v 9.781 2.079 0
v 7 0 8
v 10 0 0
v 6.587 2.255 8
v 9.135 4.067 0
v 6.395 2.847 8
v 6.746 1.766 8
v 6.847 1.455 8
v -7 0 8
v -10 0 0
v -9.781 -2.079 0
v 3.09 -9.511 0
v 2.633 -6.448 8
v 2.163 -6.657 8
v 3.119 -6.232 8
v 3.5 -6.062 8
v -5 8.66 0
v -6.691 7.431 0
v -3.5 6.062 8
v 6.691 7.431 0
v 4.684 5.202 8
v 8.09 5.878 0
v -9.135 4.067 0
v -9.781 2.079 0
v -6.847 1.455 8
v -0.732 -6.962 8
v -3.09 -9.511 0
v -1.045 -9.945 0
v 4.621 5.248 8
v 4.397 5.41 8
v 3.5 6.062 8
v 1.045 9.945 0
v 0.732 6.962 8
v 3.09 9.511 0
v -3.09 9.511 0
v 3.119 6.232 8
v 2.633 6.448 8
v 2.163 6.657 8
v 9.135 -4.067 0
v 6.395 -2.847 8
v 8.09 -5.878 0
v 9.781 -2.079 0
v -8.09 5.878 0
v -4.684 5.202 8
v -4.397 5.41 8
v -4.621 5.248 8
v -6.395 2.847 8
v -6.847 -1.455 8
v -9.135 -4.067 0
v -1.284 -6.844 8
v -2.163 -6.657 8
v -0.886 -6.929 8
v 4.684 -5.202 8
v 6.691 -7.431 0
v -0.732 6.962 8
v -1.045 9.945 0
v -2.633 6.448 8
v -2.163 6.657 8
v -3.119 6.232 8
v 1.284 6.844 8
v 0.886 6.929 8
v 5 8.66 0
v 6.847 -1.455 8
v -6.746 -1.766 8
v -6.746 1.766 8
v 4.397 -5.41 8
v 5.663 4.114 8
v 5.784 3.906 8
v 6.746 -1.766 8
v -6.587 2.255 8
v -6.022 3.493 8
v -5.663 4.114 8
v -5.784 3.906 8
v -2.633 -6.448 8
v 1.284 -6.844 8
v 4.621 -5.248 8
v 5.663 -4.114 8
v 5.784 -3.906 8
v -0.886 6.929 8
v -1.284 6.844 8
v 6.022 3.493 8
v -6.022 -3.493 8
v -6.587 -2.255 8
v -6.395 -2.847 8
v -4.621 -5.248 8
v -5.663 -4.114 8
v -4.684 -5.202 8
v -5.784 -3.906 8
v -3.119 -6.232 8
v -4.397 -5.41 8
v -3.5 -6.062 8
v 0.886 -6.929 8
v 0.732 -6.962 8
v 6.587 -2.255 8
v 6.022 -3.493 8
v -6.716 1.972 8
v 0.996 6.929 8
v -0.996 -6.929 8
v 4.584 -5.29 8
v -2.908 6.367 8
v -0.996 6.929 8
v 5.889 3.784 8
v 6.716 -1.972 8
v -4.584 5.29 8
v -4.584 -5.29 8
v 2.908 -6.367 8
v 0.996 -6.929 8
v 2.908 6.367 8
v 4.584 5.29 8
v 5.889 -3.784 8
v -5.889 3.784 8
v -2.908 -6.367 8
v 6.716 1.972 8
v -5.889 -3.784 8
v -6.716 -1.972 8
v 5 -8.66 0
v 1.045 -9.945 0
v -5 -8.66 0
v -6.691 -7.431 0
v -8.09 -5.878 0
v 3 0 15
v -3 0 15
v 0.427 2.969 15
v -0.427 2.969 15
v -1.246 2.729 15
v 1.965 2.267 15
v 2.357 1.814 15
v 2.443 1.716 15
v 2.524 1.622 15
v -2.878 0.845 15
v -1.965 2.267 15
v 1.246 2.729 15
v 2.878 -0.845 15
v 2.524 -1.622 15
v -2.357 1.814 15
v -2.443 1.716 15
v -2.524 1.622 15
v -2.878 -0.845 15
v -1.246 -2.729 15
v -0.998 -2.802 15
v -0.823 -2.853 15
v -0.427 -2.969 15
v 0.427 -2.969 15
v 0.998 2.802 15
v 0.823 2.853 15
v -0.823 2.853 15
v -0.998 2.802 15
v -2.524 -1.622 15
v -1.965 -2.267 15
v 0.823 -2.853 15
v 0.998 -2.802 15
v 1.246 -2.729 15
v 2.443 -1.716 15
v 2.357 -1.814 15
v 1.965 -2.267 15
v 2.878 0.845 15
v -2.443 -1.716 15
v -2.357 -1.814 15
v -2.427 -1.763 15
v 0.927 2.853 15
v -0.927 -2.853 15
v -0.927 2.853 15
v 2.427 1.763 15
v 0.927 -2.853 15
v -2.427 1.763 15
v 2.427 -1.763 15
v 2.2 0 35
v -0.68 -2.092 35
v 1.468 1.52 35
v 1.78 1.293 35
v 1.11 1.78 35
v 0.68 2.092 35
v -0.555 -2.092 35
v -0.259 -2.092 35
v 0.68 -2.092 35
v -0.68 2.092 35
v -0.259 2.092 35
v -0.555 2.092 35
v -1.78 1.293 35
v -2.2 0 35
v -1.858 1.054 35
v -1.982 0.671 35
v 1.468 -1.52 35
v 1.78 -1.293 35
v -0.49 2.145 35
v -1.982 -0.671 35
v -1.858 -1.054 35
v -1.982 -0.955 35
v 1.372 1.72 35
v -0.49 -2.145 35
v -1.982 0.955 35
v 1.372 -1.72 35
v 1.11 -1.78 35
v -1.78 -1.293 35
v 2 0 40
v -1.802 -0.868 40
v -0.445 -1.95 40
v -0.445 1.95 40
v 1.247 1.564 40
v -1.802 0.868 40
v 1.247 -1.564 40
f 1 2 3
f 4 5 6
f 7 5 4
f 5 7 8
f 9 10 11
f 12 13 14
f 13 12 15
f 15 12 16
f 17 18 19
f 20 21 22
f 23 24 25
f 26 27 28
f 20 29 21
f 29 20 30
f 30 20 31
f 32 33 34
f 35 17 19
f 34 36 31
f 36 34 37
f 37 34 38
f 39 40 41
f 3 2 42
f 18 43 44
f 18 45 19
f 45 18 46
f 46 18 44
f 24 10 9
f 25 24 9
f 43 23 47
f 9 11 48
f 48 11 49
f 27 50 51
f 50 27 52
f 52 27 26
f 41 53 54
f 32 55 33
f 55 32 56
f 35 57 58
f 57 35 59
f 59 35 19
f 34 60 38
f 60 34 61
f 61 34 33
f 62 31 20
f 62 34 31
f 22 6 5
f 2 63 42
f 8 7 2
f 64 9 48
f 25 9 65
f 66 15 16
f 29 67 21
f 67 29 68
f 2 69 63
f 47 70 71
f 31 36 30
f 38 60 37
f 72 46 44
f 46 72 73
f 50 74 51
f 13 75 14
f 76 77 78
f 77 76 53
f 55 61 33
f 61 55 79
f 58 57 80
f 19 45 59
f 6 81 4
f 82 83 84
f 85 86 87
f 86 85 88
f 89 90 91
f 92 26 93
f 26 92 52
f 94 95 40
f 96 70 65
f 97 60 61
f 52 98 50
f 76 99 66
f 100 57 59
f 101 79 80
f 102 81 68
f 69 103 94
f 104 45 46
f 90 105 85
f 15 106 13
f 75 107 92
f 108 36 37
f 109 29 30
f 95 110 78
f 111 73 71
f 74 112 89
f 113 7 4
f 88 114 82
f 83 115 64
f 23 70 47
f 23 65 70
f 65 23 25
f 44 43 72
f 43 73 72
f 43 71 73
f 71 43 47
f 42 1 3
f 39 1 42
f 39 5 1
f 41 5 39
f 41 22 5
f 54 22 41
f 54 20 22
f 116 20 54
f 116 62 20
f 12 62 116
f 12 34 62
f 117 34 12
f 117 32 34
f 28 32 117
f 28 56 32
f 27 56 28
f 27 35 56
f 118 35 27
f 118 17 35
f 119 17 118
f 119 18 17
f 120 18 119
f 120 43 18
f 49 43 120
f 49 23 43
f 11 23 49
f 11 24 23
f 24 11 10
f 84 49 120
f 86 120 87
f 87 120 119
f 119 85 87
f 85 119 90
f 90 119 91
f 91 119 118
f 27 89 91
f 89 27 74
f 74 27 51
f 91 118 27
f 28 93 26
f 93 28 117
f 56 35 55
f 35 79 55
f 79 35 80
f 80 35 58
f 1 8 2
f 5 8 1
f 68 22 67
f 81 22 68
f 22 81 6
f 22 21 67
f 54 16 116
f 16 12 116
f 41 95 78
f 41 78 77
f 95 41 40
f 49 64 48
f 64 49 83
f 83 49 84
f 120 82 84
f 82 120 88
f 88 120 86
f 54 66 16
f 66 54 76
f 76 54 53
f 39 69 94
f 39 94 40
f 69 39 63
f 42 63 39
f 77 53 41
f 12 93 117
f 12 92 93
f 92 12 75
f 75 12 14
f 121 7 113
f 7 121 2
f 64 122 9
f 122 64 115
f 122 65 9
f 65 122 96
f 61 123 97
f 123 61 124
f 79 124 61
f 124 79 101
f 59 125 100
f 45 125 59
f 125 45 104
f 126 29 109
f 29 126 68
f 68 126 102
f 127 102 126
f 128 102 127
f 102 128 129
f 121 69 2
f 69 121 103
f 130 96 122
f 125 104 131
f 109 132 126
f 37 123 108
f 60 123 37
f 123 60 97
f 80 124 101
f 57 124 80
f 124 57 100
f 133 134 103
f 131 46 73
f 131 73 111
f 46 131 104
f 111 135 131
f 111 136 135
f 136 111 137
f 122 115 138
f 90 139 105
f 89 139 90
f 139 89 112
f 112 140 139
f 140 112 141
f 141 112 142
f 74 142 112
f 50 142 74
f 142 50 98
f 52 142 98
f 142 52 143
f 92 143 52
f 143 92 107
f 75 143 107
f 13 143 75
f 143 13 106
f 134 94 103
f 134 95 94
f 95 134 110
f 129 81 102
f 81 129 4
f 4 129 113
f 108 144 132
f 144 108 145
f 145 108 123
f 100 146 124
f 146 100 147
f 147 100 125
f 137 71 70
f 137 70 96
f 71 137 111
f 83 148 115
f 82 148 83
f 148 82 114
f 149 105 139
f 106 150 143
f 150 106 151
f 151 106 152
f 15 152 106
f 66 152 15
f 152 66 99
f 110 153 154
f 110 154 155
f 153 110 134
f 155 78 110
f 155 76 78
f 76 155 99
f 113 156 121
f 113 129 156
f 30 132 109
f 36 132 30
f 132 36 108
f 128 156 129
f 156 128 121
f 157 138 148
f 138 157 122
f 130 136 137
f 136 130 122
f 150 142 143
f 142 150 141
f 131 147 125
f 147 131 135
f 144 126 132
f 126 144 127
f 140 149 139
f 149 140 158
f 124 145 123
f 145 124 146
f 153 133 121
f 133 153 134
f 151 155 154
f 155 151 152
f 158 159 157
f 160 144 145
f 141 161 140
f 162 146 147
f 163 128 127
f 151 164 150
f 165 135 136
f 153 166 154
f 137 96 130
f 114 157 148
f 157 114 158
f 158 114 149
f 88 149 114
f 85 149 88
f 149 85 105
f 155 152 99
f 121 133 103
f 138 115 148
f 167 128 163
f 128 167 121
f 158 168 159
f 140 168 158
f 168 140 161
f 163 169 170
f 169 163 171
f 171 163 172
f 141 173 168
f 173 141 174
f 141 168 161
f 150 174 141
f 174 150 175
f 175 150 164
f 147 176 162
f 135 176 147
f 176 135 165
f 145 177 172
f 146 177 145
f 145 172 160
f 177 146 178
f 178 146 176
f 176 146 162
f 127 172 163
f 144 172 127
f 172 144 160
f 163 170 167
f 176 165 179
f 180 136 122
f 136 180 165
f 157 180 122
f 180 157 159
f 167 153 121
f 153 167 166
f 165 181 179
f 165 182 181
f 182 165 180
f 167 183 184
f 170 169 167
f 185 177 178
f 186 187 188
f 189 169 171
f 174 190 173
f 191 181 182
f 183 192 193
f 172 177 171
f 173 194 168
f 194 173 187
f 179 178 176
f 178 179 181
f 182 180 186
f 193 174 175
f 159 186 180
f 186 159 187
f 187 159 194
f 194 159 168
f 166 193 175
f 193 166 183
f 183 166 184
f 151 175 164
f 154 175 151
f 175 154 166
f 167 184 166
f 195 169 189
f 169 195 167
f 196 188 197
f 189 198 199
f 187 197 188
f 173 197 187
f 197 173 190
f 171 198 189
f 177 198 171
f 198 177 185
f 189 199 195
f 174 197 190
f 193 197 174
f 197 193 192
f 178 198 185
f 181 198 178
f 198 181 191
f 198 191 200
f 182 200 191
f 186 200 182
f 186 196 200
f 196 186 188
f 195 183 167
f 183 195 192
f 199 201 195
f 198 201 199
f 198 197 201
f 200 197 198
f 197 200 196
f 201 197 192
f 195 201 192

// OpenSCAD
module lamp(r_top, r_lamp, r_middle, r_base, h_top, h_lamp, h_base_top, h_base_bottom) {
    
    // Poprawiona formuła r_upper_lamp
    r_upper_lamp = r_top+(((r_lamp - r_top)*h_top) / (h_lamp + h_top));
    
    // Podstawa
    cylinder(h_base_bottom, r1=r_base, r2=r_middle);

    // Górna część podstawy
    translate([0,0,h_base_bottom])
    cylinder(h_base_top, r1=r_middle, r2=r_lamp);

    // Główna część lampy
    translate([0,0,h_base_bottom + h_base_top])
    cylinder(h_lamp, r1=r_lamp, r2=r_upper_lamp);

    // Górna część lampy
    translate([0,0,h_base_bottom + h_base_top + h_lamp])
    cylinder(h_top, r1=r_upper_lamp, r2=r_top);
}

lamp(
    r_top = 2,
    r_lamp = 3,
    r_middle = 7,
    r_base = 10,
    h_top = 5,
    h_lamp = 20,
    h_base_top = 7,
    h_base_bottom = 8
);
